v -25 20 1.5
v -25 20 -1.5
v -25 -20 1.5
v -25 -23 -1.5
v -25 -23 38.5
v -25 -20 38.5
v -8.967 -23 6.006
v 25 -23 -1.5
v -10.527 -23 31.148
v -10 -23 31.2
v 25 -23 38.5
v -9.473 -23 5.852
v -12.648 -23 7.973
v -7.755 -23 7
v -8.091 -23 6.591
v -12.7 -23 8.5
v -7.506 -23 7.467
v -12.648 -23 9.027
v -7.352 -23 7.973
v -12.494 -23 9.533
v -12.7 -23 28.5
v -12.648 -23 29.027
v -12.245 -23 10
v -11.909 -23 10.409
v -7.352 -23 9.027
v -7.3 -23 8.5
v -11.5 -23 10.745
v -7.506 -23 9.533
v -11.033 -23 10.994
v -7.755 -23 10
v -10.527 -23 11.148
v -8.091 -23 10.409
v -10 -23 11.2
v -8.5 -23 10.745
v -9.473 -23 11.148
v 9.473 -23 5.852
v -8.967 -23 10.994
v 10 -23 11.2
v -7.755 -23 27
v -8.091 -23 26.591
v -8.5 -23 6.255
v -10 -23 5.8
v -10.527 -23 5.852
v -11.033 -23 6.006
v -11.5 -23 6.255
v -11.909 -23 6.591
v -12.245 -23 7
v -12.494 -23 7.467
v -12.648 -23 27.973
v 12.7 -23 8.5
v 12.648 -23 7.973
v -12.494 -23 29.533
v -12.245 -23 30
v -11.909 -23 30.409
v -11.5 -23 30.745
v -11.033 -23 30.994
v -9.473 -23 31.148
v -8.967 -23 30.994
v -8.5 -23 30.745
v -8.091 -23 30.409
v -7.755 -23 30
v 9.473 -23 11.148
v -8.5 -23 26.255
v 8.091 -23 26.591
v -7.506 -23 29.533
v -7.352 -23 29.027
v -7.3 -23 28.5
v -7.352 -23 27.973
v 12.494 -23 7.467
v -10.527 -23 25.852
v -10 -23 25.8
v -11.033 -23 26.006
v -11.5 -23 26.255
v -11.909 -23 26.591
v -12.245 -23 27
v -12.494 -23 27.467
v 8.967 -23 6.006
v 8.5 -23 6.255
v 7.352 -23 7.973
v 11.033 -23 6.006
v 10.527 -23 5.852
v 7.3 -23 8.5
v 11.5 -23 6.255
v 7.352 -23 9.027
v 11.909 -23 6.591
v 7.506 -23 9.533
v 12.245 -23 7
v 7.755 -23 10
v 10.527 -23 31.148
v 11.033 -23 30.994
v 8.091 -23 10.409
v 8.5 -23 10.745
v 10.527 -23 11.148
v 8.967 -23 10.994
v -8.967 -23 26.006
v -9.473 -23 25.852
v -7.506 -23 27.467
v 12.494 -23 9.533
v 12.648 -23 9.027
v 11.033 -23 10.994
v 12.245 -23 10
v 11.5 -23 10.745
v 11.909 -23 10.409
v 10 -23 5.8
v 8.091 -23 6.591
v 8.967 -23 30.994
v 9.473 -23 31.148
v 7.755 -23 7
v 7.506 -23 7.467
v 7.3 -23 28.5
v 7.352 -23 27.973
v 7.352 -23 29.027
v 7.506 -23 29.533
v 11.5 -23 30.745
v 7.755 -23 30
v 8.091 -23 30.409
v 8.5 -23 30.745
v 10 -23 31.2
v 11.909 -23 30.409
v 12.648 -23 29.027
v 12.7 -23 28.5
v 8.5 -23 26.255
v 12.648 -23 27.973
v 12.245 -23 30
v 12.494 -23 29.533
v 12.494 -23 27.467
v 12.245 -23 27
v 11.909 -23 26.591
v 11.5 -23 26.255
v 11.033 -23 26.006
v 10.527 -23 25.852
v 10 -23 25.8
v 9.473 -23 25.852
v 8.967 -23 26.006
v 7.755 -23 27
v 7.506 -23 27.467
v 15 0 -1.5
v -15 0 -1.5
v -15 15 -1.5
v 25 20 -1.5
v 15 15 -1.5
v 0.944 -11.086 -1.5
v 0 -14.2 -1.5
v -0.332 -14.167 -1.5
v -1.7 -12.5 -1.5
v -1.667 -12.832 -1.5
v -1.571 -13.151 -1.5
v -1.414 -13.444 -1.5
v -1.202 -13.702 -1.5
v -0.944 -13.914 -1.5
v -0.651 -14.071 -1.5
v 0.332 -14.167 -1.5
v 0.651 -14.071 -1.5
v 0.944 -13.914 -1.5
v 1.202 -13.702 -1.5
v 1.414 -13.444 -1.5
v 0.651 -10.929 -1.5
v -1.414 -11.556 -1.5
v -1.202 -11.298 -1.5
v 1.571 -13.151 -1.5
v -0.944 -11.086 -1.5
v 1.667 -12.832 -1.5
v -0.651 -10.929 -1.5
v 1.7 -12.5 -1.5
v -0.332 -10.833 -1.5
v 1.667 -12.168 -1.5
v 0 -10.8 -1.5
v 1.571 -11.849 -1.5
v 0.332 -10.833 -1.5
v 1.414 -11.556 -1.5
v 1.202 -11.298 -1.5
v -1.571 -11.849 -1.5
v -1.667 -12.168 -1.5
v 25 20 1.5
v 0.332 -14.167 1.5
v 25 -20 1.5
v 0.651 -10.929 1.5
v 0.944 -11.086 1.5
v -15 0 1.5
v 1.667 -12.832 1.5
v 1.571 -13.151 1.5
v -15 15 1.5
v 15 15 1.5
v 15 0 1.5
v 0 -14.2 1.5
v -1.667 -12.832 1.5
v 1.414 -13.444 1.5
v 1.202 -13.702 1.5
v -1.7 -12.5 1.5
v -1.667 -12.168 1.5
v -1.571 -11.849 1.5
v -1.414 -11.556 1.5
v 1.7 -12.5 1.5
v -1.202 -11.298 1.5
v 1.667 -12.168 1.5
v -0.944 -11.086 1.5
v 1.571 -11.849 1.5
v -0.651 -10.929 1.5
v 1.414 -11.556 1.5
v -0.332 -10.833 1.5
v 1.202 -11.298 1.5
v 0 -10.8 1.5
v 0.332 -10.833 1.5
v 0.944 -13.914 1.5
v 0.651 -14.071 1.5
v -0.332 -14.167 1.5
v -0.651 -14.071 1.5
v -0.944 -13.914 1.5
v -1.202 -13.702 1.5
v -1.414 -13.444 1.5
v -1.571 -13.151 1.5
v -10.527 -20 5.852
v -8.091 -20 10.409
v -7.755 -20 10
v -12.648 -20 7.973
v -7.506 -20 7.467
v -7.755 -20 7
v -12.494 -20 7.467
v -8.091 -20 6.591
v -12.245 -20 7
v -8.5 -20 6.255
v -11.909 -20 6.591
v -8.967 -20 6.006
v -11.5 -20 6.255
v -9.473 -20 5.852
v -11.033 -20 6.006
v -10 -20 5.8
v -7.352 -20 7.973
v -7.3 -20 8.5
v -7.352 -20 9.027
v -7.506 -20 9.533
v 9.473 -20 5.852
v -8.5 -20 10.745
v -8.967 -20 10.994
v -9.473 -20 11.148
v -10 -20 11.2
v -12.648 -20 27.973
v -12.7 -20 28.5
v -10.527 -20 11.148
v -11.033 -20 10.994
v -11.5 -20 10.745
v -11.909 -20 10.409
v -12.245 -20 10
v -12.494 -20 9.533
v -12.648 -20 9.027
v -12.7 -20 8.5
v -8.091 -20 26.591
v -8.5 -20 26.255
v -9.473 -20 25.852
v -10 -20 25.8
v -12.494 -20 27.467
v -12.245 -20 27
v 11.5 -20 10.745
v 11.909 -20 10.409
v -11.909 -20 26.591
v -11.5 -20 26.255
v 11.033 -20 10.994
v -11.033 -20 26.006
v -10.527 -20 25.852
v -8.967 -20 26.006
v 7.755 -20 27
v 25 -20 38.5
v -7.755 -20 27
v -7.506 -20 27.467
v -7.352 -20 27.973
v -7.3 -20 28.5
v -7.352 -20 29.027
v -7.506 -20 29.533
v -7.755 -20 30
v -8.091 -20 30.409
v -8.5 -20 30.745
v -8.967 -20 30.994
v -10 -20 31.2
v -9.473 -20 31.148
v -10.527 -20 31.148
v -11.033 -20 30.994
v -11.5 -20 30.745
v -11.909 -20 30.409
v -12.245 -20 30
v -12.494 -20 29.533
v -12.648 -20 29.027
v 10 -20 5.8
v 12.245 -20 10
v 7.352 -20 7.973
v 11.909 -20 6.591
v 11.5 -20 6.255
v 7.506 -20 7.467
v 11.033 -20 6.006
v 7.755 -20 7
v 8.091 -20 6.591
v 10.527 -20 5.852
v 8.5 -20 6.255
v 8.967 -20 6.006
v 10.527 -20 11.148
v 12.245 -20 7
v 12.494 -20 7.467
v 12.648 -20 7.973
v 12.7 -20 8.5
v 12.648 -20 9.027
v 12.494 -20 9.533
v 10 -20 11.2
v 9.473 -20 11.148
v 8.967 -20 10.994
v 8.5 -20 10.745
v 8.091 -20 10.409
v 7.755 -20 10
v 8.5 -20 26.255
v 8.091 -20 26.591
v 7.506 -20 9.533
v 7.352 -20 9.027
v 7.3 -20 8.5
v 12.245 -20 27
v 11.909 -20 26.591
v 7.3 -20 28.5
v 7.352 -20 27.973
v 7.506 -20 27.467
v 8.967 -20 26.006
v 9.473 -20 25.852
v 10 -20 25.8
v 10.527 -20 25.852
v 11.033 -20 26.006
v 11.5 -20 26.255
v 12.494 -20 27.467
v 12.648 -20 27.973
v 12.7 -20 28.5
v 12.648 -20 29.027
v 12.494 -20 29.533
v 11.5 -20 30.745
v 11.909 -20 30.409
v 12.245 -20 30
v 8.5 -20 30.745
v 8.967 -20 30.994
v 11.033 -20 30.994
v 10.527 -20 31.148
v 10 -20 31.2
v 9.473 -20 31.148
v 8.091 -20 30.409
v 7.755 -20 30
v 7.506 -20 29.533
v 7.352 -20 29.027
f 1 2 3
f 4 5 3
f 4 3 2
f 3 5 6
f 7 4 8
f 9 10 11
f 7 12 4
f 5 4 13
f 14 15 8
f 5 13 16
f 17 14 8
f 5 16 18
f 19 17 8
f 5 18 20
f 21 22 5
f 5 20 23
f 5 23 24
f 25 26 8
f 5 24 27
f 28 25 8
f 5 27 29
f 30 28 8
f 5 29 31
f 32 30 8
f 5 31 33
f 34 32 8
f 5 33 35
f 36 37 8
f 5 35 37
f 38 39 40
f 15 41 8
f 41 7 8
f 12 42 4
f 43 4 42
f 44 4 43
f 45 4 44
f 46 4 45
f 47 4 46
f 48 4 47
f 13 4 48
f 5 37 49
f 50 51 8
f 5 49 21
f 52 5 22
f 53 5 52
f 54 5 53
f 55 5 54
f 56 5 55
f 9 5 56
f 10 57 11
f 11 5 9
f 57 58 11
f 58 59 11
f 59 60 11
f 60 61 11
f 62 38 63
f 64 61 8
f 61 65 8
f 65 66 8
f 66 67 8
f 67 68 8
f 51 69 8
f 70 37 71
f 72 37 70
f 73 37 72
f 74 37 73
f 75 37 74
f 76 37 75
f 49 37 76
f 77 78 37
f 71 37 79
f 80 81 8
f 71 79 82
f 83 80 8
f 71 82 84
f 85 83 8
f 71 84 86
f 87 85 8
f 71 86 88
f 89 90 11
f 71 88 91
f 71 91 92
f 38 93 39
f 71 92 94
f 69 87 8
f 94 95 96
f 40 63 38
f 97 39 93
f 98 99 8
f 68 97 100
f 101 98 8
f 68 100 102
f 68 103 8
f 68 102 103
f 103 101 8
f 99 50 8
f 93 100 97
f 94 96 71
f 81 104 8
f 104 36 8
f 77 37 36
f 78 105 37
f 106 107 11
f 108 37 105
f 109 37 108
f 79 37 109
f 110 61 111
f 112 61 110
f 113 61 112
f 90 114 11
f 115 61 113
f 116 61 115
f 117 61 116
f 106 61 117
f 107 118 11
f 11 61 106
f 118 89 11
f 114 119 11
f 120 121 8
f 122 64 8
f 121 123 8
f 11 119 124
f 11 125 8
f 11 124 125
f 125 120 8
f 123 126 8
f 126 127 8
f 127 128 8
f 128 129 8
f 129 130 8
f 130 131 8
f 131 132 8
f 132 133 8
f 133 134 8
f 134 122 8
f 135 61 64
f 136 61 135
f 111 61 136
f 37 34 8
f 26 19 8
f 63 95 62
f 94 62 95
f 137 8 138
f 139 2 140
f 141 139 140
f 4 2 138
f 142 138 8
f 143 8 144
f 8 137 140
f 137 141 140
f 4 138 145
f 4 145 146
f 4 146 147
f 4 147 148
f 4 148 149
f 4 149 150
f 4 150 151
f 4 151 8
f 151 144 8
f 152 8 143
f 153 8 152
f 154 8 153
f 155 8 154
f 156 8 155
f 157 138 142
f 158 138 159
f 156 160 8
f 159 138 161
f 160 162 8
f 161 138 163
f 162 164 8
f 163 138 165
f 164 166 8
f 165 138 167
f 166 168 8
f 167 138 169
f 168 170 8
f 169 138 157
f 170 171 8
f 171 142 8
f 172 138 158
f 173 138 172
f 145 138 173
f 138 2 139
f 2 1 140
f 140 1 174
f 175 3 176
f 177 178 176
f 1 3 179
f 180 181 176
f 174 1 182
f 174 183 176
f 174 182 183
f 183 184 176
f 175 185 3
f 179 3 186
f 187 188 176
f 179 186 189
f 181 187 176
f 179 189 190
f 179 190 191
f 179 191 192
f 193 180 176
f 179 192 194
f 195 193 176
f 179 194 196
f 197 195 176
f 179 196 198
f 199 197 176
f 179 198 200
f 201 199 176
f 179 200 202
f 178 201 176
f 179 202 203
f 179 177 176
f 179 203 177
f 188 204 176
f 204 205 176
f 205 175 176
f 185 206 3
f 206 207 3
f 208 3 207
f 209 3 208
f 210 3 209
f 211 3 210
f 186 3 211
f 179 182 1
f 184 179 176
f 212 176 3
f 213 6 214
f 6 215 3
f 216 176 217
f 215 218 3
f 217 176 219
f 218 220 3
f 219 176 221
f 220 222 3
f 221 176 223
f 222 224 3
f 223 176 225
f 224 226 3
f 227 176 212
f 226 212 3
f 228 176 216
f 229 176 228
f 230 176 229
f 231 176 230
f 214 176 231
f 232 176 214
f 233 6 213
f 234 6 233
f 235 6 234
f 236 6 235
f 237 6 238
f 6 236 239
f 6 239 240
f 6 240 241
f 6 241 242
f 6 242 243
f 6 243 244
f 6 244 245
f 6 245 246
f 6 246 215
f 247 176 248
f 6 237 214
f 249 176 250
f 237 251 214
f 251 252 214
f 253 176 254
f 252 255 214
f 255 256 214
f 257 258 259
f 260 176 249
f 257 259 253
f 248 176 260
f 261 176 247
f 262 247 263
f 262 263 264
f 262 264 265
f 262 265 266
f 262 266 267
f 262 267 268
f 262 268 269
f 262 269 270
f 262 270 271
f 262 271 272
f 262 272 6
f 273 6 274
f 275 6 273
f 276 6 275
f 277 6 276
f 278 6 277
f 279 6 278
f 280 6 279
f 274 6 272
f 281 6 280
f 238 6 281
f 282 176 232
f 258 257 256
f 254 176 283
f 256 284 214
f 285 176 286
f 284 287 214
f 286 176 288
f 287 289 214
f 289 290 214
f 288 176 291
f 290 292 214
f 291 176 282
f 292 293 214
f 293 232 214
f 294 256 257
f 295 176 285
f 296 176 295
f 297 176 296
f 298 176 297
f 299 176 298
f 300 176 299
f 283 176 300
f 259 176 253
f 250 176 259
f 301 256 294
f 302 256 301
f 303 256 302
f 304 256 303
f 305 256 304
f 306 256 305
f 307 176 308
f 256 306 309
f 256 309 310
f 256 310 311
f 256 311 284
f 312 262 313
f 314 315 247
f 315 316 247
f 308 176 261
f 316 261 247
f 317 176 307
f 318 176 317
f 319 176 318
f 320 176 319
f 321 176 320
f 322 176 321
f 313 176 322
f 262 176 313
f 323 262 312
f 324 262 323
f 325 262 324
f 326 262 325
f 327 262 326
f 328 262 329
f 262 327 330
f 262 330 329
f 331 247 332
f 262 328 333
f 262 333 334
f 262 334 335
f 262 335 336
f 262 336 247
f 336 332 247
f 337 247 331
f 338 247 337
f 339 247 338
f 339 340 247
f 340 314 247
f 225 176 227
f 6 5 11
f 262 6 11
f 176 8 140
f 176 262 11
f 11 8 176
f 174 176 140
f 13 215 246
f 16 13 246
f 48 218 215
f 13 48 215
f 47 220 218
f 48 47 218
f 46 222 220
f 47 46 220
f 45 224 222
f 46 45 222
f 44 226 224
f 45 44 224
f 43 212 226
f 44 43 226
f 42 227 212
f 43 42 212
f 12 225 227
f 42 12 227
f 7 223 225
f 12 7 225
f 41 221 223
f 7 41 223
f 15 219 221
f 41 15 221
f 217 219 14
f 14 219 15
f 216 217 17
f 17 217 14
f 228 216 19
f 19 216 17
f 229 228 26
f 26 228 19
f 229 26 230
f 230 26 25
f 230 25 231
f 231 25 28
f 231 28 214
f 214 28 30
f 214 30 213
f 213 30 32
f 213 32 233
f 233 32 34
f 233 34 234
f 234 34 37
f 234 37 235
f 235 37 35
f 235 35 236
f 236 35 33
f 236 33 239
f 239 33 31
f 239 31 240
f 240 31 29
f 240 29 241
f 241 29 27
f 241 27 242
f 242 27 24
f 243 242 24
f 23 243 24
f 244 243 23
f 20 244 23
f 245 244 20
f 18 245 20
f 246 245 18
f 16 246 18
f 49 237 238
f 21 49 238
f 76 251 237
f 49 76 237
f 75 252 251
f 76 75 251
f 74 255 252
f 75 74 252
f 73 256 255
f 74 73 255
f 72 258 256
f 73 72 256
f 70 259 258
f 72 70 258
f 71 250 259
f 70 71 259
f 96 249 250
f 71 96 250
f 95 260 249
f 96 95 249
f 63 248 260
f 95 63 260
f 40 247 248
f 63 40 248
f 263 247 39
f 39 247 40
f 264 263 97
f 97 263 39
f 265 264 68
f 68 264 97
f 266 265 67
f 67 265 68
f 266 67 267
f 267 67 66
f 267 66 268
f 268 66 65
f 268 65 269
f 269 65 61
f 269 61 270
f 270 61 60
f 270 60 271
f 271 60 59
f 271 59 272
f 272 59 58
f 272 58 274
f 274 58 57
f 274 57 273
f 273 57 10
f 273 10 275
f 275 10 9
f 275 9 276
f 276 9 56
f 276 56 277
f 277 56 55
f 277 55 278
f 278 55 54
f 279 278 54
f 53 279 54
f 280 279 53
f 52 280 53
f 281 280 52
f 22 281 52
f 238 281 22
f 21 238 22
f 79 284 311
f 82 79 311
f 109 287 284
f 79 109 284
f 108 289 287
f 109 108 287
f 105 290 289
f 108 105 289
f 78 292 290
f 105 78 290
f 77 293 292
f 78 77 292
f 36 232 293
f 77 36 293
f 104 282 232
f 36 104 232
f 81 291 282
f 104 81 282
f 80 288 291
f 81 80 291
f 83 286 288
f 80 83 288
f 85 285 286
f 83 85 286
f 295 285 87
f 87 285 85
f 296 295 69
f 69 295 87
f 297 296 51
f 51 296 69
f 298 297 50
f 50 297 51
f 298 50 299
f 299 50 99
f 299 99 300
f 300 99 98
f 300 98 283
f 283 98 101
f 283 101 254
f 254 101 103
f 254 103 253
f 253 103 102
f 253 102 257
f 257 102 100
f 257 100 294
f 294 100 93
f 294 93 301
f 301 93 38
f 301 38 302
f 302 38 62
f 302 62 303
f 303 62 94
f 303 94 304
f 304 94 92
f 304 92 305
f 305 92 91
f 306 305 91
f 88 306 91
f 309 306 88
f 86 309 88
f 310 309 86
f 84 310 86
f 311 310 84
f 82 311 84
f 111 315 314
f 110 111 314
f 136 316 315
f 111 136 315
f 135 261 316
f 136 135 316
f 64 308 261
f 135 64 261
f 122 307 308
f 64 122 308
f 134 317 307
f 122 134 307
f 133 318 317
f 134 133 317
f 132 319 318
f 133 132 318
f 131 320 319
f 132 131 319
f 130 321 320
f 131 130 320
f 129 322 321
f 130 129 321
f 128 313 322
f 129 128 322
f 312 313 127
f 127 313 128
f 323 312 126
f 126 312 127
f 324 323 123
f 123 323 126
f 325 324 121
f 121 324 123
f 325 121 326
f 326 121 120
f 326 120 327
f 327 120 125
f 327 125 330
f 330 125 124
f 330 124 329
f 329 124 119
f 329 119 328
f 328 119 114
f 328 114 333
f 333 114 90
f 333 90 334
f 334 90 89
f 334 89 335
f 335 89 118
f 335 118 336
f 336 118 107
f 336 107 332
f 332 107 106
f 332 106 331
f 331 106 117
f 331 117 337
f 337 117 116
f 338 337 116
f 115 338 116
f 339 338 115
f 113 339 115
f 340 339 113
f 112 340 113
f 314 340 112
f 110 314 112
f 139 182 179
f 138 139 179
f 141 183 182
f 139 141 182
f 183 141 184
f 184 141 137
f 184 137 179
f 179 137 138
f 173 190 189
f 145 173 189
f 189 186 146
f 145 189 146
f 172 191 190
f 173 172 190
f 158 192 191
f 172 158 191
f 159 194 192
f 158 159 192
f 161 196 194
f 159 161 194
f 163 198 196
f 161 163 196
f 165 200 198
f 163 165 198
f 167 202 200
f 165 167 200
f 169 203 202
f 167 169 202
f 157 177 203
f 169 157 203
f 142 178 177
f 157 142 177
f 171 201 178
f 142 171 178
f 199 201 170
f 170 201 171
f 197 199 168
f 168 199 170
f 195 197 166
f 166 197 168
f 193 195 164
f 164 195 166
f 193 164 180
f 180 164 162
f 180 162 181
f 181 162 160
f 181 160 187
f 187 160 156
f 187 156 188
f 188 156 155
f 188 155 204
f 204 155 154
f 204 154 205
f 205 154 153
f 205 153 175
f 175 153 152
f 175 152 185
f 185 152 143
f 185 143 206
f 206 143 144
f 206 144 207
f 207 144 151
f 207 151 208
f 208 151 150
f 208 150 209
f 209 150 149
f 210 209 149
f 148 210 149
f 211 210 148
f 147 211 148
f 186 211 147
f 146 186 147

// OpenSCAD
cow= 30;
col= 15;
coh= 24;
hd= 12.5;
w= 40+10;
o= col/2;
l= col+hd+col/2+5;
h= 3;


module eswitch() {
	translate([-40/2, -30/2,0]) cube([40,30, 10]);
	translate([0,0,10]) cylinder(r=30/2, h=32);
	translate([0,0,32+10]) cylinder(r=40/2, h=3);
	translate([-cow/2, -30+col, -coh]) cube([cow, col, coh]);
}

module base() {
	difference() {
		cube([w, l, h], center=true);
		#translate([0,o,0]) cube([cow, col, h], center= true);
		#translate([0,-hd,0]) cylinder(r= 3/2+0.2, h= h, center=true, $fn=32);
	}
}

module flange() {
	ht= 40;
	difference() {
		translate([-w/2, -h, 0]) cube([w, h, ht]);
		#translate([-10,0,ht/2-10]) rotate([90,0,0]) cylinder(r= 5/2+0.2, h= h+5, center=true, $fn=32);
		#translate([-10,0,ht/2+10]) rotate([90,0,0]) cylinder(r= 5/2+0.2, h= h+5, center=true, $fn=32);
		#translate([10,0,ht/2-10]) rotate([90,0,0]) cylinder(r= 5/2+0.2, h= h+5, center=true, $fn=32);
		#translate([10,0,ht/2+10]) rotate([90,0,0]) cylinder(r= 5/2+0.2, h= h+5, center=true, $fn=32);

	}
}

module holder() {
	union() {
		base();
		translate([0,-l/2,-h/2]) flange();
	}
}

holder();
%translate([0,0,0]) rotate([180,0,0]) eswitch();
